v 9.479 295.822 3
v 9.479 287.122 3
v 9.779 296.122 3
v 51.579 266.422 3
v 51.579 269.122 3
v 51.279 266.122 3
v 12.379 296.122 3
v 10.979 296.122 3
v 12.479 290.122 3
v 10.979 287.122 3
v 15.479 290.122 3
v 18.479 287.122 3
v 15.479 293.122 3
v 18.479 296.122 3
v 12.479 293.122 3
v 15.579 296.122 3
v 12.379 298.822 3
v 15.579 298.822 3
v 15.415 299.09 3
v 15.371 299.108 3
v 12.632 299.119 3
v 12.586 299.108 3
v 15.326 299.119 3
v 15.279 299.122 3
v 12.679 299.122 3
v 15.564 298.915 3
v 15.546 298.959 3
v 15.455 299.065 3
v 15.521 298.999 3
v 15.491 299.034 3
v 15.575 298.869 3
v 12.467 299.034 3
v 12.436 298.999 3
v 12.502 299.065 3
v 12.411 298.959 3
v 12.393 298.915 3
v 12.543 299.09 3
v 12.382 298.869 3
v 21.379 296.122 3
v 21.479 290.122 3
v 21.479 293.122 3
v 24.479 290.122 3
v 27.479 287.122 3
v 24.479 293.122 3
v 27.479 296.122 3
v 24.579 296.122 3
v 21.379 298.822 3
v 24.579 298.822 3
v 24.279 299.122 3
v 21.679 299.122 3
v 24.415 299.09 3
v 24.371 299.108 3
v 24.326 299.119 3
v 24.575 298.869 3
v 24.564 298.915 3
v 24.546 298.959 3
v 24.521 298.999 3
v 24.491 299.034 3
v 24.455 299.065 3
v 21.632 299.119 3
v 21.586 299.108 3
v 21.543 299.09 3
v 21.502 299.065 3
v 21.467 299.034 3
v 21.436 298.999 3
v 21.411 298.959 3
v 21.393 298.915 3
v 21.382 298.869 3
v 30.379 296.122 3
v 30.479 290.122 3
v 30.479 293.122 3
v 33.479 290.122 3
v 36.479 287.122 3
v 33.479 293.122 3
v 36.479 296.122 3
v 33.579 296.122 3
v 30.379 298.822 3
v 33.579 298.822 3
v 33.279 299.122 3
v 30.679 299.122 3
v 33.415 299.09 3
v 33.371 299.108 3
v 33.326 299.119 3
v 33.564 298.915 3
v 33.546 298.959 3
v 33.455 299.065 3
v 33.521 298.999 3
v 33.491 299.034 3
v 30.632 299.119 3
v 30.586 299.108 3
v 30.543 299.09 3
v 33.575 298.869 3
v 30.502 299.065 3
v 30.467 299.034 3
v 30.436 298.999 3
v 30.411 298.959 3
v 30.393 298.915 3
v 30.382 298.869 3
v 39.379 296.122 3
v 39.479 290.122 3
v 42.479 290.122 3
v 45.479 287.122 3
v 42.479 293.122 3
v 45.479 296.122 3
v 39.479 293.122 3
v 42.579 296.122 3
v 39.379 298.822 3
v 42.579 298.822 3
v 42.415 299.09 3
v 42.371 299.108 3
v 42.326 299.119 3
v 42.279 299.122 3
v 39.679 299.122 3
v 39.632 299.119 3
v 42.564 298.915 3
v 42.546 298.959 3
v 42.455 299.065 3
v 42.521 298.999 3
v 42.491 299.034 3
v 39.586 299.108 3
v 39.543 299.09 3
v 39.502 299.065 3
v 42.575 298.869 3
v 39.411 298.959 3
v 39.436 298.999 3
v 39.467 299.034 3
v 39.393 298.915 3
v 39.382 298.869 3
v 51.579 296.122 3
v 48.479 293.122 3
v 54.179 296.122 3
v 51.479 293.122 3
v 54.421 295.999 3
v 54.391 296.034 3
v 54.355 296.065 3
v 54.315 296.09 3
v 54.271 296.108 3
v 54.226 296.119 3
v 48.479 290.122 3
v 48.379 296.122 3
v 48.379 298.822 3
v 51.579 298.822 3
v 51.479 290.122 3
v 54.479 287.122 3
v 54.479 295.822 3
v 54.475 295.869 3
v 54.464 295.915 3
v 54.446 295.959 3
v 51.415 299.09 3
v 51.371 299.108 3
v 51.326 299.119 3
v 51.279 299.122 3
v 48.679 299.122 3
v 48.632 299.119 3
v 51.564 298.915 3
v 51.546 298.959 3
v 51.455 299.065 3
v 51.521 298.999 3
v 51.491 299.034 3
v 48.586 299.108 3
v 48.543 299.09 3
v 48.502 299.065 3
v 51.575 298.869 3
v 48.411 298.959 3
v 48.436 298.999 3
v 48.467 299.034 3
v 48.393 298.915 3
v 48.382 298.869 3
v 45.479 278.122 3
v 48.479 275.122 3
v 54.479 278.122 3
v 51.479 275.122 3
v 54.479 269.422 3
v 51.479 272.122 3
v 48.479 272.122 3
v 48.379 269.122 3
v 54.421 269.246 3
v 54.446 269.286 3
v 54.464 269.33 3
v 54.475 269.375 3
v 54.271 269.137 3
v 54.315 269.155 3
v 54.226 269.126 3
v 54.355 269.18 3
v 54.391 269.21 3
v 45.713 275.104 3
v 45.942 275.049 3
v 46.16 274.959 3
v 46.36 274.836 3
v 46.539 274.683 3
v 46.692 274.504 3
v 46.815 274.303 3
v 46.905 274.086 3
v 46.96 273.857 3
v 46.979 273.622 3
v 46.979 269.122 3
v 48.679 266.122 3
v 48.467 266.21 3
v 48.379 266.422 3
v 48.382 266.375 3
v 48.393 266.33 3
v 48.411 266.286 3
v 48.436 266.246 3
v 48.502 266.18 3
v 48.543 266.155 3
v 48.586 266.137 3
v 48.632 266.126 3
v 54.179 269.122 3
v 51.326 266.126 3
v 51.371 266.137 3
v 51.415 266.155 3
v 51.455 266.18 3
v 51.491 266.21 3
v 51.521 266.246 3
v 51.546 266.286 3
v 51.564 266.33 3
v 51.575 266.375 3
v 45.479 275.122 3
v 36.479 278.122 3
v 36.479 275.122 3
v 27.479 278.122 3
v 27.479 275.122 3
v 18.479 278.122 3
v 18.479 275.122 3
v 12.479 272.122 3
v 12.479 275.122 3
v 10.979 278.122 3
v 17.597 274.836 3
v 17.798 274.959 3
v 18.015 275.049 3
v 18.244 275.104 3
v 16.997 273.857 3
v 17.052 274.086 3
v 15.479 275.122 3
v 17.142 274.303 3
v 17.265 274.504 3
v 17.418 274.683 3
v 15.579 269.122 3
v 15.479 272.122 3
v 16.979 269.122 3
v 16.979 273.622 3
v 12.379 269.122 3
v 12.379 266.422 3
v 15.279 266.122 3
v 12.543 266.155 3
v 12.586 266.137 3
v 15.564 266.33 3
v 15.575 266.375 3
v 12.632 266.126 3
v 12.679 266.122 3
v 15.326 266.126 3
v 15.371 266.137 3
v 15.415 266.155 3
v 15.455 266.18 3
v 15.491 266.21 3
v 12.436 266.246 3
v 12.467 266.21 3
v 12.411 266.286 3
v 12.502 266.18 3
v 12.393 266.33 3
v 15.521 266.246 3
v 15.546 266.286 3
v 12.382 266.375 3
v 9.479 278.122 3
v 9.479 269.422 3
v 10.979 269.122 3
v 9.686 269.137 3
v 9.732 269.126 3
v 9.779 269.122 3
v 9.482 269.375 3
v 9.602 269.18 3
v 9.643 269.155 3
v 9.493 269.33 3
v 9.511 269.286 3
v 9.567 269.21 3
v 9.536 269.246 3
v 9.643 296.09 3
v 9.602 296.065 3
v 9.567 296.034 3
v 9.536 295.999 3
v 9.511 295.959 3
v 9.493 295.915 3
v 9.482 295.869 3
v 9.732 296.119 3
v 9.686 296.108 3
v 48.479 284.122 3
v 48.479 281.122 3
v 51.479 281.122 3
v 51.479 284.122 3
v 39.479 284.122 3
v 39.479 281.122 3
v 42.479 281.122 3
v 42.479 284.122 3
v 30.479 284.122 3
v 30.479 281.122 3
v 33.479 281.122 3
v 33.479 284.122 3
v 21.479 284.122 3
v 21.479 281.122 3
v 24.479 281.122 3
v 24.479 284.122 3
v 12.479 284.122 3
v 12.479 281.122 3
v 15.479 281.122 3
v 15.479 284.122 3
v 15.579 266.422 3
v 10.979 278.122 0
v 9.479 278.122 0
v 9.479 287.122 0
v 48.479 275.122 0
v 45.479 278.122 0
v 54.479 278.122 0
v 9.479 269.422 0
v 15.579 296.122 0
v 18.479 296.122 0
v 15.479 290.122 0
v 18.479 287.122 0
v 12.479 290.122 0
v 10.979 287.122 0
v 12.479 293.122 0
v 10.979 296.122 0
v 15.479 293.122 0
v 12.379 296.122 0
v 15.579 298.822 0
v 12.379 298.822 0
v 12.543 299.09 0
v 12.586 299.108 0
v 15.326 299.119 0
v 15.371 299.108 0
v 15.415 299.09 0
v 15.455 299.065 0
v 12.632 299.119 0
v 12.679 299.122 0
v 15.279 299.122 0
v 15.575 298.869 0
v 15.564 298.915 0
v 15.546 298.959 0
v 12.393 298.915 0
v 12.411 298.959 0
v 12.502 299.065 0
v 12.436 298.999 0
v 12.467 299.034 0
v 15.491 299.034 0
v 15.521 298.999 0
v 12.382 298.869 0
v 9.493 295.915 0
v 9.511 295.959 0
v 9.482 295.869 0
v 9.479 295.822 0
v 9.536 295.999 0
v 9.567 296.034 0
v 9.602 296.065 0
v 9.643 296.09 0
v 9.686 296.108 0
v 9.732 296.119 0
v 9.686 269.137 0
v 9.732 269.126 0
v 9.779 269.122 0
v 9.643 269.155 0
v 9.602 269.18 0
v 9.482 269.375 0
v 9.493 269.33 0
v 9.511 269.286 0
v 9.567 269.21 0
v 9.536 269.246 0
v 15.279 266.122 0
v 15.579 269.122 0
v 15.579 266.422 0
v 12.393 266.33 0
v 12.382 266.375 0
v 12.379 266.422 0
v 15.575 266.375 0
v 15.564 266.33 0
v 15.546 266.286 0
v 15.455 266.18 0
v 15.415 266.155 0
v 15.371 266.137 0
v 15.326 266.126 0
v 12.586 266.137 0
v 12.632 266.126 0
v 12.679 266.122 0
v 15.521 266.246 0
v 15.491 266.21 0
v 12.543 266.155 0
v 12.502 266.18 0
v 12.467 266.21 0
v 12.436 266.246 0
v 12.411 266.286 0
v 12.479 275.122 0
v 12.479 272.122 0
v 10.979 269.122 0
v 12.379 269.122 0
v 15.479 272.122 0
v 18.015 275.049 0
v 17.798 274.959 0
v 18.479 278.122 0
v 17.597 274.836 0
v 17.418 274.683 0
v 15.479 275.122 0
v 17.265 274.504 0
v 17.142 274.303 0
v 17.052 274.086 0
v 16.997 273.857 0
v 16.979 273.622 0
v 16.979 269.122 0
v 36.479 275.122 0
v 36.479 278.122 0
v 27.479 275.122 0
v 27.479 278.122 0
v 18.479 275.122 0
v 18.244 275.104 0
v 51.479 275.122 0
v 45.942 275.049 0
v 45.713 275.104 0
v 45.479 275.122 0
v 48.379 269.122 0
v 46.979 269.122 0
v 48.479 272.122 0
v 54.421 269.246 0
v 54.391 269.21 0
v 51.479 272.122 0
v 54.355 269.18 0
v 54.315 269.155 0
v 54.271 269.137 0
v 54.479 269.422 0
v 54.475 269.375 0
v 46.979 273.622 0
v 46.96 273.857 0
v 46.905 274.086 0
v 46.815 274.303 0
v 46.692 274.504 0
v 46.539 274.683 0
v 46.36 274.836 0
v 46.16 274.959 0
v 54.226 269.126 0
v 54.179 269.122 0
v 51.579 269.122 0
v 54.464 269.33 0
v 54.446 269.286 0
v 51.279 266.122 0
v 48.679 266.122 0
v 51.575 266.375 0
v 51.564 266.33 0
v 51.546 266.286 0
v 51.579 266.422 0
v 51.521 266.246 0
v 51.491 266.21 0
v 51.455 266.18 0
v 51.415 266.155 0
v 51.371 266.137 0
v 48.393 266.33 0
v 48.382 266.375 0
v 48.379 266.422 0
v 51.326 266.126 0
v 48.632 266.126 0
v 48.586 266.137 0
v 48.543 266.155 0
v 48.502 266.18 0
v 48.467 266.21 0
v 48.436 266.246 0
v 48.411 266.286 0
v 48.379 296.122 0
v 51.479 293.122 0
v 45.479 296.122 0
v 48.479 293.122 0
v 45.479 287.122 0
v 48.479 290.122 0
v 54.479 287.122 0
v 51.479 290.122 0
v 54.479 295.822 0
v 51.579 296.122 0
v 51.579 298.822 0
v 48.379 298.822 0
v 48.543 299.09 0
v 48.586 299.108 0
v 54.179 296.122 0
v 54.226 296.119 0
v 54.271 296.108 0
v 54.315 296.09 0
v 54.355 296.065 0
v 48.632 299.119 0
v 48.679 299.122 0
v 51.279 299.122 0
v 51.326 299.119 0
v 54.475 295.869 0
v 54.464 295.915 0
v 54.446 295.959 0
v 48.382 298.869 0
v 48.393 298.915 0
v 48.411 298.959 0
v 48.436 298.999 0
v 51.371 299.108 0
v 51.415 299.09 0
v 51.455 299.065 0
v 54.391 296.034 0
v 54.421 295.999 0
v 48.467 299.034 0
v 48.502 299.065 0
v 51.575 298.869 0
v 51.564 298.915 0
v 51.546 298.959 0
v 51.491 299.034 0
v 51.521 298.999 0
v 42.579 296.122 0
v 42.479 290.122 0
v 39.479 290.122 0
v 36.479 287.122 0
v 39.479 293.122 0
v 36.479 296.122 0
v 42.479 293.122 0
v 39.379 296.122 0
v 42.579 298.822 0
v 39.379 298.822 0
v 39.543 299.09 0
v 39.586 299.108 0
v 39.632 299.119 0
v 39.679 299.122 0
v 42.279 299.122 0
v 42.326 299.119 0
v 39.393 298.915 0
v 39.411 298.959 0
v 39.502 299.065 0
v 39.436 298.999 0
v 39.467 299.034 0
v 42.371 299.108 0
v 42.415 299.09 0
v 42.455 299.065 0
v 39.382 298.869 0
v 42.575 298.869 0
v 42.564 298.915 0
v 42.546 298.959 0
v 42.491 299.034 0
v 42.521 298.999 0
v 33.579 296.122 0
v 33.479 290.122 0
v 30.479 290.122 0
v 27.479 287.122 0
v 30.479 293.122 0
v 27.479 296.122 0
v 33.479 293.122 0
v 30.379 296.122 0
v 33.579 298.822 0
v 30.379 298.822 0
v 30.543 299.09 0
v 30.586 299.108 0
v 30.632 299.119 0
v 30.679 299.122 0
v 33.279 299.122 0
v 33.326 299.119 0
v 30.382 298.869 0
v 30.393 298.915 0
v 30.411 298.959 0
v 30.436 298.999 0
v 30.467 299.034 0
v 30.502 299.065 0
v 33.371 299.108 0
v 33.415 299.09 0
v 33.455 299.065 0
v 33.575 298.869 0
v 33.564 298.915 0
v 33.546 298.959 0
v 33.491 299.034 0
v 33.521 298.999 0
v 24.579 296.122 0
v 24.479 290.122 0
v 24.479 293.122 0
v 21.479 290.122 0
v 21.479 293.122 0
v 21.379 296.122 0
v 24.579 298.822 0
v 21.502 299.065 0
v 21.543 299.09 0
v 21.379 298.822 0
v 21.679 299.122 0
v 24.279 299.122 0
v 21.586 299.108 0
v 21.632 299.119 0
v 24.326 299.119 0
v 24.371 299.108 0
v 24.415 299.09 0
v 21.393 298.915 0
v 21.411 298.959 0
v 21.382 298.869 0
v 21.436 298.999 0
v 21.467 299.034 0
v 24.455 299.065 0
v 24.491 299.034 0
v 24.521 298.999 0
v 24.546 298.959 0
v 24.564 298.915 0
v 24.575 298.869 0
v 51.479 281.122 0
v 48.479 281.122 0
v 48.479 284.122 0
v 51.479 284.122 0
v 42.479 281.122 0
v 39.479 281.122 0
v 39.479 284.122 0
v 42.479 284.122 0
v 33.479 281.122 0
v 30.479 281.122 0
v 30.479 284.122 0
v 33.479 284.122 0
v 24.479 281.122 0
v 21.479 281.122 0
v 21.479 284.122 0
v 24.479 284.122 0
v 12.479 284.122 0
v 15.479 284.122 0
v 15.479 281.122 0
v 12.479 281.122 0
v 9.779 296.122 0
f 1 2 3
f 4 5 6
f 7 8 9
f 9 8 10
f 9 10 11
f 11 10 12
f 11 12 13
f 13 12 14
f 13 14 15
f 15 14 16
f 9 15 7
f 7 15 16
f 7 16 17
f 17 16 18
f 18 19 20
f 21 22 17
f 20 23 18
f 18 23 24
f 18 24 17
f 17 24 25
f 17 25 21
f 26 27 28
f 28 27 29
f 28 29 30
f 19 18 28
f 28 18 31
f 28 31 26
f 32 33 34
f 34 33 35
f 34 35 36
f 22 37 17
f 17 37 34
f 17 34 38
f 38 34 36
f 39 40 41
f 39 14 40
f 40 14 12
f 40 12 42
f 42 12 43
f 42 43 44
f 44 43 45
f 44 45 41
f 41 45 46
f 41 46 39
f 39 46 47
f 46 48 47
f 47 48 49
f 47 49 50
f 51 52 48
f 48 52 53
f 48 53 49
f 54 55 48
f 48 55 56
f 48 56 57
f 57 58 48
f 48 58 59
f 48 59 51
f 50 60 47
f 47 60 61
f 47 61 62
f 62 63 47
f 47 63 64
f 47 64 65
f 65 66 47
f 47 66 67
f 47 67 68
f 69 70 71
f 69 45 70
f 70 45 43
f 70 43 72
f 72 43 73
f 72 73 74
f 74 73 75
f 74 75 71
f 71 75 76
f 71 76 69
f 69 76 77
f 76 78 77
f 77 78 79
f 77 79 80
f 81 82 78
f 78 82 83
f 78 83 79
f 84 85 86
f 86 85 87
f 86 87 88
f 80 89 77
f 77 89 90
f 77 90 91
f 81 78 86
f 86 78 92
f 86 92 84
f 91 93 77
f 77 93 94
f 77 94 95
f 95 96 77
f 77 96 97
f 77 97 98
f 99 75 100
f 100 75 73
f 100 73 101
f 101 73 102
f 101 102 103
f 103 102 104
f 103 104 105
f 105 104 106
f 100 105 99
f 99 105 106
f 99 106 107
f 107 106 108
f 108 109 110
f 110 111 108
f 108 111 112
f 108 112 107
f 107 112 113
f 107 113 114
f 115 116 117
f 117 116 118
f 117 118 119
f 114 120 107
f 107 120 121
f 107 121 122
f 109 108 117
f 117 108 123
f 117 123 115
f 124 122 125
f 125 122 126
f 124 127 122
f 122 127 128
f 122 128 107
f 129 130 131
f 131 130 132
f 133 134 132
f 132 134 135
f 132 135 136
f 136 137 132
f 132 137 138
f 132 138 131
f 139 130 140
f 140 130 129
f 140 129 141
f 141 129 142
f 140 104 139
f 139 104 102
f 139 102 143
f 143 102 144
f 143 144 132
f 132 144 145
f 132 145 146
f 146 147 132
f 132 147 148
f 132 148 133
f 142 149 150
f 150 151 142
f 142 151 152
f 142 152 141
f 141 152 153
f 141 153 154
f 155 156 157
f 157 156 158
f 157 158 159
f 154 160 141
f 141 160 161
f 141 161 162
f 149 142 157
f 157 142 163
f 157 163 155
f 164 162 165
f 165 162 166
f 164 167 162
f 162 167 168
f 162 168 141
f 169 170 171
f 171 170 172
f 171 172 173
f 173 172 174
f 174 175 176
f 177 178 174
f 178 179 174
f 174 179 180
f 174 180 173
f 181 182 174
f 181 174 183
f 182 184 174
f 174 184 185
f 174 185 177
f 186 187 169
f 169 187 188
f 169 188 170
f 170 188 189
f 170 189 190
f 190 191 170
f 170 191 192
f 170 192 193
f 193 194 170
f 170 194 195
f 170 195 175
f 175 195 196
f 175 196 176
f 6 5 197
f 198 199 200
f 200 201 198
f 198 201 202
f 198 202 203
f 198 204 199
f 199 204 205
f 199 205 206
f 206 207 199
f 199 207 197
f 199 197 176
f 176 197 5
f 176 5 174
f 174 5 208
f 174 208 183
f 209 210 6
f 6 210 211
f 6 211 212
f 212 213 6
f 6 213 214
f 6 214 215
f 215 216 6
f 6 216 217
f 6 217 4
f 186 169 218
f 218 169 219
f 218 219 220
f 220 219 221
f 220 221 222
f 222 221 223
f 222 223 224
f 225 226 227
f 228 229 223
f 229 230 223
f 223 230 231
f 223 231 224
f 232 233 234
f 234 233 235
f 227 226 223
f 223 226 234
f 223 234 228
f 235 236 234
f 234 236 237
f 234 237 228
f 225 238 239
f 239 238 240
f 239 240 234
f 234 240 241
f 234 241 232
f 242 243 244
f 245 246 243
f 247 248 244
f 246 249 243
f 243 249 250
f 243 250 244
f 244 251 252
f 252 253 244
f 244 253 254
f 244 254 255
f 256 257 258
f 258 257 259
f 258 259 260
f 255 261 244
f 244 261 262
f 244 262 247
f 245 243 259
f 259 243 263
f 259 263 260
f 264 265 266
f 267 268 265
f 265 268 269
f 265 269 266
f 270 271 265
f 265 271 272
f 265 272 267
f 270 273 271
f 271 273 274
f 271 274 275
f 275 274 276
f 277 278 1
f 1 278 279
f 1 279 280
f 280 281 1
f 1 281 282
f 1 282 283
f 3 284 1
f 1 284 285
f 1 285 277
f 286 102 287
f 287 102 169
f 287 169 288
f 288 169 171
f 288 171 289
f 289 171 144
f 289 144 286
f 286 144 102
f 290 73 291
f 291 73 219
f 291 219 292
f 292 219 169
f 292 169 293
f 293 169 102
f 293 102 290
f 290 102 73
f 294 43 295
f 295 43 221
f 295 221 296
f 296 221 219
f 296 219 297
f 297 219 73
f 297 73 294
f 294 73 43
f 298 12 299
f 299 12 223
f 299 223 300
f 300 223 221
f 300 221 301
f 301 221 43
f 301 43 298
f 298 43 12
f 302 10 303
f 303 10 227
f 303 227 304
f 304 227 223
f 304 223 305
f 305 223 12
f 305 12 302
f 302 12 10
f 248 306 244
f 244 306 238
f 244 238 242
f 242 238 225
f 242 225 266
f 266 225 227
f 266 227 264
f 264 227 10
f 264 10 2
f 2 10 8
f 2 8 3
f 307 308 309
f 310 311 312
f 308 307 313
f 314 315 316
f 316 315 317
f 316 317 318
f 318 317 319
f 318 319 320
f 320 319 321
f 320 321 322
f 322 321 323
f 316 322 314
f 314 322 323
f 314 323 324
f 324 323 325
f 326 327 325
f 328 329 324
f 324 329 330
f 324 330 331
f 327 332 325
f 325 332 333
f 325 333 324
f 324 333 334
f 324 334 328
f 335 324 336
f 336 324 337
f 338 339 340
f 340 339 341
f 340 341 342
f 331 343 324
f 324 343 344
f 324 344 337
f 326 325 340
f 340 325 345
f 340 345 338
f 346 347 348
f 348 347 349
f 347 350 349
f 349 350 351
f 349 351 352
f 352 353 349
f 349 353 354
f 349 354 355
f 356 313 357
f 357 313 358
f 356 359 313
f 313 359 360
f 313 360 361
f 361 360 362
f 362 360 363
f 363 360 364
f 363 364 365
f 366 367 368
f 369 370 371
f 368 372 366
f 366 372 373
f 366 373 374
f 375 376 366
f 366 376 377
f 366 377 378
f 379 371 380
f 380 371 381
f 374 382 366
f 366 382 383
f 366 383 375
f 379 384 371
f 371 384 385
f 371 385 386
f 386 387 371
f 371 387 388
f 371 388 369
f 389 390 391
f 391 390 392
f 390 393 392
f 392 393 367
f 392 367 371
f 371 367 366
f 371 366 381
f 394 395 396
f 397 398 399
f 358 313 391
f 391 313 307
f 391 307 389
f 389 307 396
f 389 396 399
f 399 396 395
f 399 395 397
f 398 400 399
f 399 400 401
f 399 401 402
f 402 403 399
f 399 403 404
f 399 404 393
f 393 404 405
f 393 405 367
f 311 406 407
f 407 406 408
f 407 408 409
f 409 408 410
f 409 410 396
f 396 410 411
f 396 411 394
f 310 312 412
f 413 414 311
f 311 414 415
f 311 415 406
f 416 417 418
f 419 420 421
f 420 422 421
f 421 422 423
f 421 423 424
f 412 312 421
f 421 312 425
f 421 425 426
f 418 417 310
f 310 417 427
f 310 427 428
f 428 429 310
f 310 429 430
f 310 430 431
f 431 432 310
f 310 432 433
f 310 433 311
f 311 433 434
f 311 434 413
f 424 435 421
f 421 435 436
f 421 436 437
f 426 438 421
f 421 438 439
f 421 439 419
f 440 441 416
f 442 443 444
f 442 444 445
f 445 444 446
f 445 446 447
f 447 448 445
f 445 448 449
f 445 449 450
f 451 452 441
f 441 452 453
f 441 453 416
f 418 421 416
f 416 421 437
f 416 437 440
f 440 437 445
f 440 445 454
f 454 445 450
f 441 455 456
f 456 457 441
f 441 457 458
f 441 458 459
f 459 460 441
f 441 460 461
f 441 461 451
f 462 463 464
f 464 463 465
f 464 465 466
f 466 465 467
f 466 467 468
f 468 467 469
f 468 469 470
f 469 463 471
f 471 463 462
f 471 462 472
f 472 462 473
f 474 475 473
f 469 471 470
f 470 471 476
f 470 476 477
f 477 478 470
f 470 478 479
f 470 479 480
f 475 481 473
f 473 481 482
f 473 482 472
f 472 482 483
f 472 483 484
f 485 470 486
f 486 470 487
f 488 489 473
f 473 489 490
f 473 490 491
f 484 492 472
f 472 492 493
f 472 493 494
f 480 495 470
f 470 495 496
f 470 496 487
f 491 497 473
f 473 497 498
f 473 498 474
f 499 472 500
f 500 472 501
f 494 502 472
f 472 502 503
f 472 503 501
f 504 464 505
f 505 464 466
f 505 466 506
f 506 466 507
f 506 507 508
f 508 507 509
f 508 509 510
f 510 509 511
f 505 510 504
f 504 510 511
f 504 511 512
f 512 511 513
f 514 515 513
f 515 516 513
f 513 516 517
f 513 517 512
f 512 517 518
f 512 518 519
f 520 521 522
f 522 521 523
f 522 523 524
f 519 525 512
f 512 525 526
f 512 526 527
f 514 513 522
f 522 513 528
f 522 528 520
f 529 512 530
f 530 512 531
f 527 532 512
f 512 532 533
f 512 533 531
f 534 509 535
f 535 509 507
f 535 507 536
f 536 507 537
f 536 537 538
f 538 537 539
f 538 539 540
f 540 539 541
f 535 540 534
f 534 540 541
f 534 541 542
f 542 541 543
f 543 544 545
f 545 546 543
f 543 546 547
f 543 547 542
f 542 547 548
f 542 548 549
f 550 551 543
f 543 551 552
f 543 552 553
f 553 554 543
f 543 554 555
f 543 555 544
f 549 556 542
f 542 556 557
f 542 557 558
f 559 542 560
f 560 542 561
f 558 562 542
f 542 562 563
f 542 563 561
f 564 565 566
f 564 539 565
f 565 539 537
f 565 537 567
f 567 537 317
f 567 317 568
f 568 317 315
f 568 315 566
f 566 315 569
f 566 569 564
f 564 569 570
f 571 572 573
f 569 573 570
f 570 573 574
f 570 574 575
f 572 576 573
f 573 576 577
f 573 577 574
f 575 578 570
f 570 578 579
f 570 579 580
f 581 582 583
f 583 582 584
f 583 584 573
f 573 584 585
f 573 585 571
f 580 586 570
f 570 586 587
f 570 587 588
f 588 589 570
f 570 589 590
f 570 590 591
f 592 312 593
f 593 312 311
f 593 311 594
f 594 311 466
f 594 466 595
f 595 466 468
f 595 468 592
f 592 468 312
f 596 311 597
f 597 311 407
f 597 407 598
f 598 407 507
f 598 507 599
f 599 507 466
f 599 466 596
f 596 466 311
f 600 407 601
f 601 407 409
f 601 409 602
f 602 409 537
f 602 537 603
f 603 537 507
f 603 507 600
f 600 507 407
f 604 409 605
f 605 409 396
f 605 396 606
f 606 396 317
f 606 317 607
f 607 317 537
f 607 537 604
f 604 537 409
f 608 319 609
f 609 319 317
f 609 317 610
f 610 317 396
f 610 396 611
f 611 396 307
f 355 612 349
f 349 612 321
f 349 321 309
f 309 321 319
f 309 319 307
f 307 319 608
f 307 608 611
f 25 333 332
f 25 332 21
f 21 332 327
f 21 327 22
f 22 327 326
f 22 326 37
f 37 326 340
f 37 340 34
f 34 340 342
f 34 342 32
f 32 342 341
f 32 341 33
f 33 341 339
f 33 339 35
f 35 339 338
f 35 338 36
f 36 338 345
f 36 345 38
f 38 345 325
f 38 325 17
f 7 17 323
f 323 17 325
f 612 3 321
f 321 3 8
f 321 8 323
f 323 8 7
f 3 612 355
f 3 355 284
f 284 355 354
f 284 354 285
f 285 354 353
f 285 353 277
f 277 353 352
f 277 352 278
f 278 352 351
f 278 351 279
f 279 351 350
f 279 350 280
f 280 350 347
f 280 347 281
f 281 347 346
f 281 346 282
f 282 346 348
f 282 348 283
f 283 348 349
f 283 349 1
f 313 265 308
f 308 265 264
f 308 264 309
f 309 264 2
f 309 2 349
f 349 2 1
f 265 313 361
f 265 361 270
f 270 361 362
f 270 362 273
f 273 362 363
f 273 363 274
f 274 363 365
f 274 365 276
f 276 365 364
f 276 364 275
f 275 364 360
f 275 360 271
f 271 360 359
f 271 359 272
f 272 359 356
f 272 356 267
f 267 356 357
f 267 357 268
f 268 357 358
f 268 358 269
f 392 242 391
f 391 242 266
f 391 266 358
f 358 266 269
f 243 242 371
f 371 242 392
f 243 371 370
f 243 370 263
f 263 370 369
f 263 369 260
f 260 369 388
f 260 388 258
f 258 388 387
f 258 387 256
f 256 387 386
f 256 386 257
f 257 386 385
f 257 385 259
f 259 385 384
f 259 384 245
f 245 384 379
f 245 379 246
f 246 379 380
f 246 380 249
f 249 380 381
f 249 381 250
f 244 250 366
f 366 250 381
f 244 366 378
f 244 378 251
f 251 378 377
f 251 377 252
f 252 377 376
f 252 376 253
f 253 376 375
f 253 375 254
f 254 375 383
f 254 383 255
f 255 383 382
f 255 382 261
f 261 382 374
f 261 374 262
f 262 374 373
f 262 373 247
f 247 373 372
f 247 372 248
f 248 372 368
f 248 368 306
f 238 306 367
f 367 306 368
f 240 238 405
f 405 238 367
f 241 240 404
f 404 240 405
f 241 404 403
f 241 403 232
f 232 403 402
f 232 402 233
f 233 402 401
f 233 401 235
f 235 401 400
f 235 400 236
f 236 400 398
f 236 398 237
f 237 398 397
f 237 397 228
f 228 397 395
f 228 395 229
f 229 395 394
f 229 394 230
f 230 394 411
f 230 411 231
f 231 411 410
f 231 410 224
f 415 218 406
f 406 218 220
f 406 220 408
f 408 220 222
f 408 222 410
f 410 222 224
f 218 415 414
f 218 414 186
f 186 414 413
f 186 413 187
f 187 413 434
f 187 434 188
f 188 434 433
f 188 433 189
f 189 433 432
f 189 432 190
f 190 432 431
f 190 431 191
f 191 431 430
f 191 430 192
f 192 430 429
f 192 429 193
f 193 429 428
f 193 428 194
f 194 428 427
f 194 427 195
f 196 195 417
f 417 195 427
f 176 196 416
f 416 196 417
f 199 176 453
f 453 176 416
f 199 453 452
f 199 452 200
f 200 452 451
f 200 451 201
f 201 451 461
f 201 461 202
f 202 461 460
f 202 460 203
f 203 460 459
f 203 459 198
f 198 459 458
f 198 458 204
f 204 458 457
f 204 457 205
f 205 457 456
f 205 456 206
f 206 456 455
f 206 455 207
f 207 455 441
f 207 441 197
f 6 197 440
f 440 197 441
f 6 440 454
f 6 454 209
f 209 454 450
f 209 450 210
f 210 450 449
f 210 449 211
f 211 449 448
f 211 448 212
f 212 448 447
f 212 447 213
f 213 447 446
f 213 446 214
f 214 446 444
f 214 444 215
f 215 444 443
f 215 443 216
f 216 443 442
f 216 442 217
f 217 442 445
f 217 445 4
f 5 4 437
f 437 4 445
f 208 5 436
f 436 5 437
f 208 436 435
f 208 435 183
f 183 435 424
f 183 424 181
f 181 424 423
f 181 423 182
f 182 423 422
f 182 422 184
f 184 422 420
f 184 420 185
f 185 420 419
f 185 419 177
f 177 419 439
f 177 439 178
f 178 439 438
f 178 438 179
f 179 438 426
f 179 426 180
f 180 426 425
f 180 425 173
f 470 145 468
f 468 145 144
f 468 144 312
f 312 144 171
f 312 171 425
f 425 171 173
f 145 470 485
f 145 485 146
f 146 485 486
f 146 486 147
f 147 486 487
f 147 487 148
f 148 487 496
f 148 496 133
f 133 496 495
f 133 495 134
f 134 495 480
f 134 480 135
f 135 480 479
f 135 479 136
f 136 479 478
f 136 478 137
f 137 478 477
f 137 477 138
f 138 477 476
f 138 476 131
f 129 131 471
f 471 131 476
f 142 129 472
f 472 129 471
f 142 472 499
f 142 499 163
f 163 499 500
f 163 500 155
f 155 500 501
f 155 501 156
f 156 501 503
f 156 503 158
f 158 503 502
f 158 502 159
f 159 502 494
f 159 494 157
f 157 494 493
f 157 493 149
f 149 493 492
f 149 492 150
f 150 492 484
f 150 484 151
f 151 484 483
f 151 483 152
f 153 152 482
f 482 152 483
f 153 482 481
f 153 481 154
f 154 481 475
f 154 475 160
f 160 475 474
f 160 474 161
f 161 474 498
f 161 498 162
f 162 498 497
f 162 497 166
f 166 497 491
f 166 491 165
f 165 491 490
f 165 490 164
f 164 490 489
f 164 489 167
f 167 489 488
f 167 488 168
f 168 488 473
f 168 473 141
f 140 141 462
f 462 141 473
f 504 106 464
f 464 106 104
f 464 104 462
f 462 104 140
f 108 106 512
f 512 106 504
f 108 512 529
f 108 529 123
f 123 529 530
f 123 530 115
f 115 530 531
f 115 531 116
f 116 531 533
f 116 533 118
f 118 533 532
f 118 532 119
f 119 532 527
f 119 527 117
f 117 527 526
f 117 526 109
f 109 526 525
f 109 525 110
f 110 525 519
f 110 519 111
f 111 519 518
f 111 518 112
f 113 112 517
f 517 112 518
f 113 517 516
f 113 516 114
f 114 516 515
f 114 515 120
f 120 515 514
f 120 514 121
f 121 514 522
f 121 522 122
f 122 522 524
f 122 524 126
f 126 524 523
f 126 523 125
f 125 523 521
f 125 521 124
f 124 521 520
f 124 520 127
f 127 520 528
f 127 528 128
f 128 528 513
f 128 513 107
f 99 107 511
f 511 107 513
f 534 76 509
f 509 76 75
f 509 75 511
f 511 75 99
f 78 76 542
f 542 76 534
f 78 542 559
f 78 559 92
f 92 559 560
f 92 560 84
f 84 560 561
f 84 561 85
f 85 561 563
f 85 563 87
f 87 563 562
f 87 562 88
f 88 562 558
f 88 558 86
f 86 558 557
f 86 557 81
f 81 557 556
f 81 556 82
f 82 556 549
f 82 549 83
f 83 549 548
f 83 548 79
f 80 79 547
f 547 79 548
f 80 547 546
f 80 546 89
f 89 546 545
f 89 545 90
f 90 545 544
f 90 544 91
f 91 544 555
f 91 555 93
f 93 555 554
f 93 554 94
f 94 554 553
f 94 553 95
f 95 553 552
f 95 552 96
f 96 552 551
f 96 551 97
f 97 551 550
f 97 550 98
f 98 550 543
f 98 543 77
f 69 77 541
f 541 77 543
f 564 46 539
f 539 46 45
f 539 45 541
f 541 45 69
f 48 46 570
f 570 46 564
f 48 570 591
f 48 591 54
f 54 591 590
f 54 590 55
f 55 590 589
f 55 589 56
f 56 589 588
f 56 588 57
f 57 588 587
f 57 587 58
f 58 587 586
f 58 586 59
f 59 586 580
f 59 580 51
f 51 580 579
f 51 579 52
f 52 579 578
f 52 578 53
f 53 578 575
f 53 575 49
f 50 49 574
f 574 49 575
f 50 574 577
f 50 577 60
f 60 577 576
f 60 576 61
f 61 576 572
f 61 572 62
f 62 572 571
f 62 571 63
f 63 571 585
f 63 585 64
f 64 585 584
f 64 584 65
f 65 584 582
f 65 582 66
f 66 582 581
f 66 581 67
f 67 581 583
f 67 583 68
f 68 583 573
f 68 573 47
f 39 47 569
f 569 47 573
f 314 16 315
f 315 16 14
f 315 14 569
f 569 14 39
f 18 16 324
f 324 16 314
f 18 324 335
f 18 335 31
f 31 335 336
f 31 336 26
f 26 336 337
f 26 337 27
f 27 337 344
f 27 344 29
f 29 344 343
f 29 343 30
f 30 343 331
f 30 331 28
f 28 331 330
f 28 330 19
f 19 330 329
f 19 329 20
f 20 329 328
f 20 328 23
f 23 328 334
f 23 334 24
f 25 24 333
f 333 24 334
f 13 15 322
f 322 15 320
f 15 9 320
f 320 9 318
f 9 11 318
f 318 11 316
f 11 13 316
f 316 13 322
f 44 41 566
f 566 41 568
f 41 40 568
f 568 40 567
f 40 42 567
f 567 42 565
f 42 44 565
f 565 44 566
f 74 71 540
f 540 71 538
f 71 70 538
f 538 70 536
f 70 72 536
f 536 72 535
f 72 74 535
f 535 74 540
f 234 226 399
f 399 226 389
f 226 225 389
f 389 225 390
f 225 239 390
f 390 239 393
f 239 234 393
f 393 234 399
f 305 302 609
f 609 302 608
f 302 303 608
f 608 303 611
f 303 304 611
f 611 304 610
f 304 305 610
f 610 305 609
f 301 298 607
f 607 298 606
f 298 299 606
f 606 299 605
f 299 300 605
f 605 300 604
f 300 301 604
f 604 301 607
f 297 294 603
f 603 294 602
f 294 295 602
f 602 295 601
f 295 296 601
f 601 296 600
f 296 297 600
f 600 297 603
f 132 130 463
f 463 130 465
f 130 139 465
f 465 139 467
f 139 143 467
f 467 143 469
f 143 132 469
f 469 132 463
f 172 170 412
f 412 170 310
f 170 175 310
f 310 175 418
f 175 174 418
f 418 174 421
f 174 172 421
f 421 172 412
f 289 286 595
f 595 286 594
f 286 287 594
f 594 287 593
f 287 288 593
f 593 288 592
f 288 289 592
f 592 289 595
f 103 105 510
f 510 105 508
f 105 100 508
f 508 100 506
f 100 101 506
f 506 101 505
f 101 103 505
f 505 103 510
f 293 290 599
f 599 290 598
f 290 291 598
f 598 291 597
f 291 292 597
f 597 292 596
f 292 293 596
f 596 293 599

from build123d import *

# Parameters (mm, degrees)
MODEL_W                 = 3
MODEL_H                 = 3
SALIENTE_EXTRUIR1_DEPTH = 3


with BuildPart() as part:
    # Model → Saliente-Extruir1 (new body)
    with BuildSketch(Plane.XY):
        with BuildLine():
            Line((9.478716471, 295.822349433), (9.478716471, 269.422349433))
            ThreePointArc((9.478716471, 269.422349433), (9.566584436, 269.210217399), (9.778716471, 269.122349433))
            Line((9.778716471, 269.122349433), (12.378716471, 269.122349433))
            Line((12.378716471, 269.122349433), (12.378716471, 266.422349433))
            ThreePointArc((12.378716471, 266.422349433), (12.466584436, 266.210217399), (12.678716471, 266.122349433))
            Line((12.678716471, 266.122349433), (15.278716471, 266.122349433))
            ThreePointArc((15.278716471, 266.122349433), (15.490848505, 266.210217399), (15.578716471, 266.422349433))
            Line((15.578716471, 266.422349433), (15.578716471, 269.122349433))
            Line((15.578716471, 269.122349433), (16.978716471, 269.122349433))
            Line((16.978716471, 269.122349433), (16.978716471, 273.622349433))
            ThreePointArc((16.978716471, 273.622349433), (17.418056299, 274.683009605), (18.478716471, 275.122349433))
            Line((18.478716471, 275.122349433), (45.478716471, 275.122349433))
            ThreePointArc((45.478716471, 275.122349433), (46.539376642, 274.683009605), (46.978716471, 273.622349433))
            Line((46.978716471, 273.622349433), (46.978716471, 269.122349433))
            Line((46.978716471, 269.122349433), (48.378716471, 269.122349433))
            Line((48.378716471, 269.122349433), (48.378716471, 266.422349433))
            ThreePointArc((48.378716471, 266.422349433), (48.466584436, 266.210217399), (48.678716471, 266.122349433))
            Line((48.678716471, 266.122349433), (51.278716471, 266.122349433))
            ThreePointArc((51.278716471, 266.122349433), (51.490848505, 266.210217399), (51.578716471, 266.422349433))
            Line((51.578716471, 266.422349433), (51.578716471, 269.122349433))
            Line((51.578716471, 269.122349433), (54.178716471, 269.122349433))
            ThreePointArc((54.178716471, 269.122349433), (54.390848505, 269.210217399), (54.478716471, 269.422349433))
            Line((54.478716471, 269.422349433), (54.478716471, 295.822349433))
            ThreePointArc((54.478716471, 295.822349433), (54.390848505, 296.034481468), (54.178716471, 296.122349433))
            Line((54.178716471, 296.122349433), (51.578716471, 296.122349433))
            Line((51.578716471, 296.122349433), (51.578716471, 298.822349433))
            ThreePointArc((51.578716471, 298.822349433), (51.490848505, 299.034481468), (51.278716471, 299.122349433))
            Line((51.278716471, 299.122349433), (48.678716471, 299.122349433))
            ThreePointArc((48.678716471, 299.122349433), (48.466584436, 299.034481468), (48.378716471, 298.822349433))
            Line((48.378716471, 298.822349433), (48.378716471, 296.122349433))
            Line((48.378716471, 296.122349433), (42.578716471, 296.122349433))
            Line((42.578716471, 296.122349433), (42.578716471, 298.822349433))
            ThreePointArc((42.578716471, 298.822349433), (42.490848505, 299.034481468), (42.278716471, 299.122349433))
            Line((42.278716471, 299.122349433), (39.678716471, 299.122349433))
            ThreePointArc((39.678716471, 299.122349433), (39.466584436, 299.034481468), (39.378716471, 298.822349433))
            Line((39.378716471, 298.822349433), (39.378716471, 296.122349433))
            Line((39.378716471, 296.122349433), (33.578716471, 296.122349433))
            Line((33.578716471, 296.122349433), (33.578716471, 298.822349433))
            ThreePointArc((33.578716471, 298.822349433), (33.490848505, 299.034481468), (33.278716471, 299.122349433))
            Line((33.278716471, 299.122349433), (30.678716471, 299.122349433))
            ThreePointArc((30.678716471, 299.122349433), (30.466584436, 299.034481468), (30.378716471, 298.822349433))
            Line((30.378716471, 298.822349433), (30.378716471, 296.122349433))
            Line((30.378716471, 296.122349433), (24.578716471, 296.122349433))
            Line((24.578716471, 296.122349433), (24.578716471, 298.822349433))
            ThreePointArc((24.578716471, 298.822349433), (24.490848505, 299.034481468), (24.278716471, 299.122349433))
            Line((24.278716471, 299.122349433), (21.678716471, 299.122349433))
            ThreePointArc((21.678716471, 299.122349433), (21.466584436, 299.034481468), (21.378716471, 298.822349433))
            Line((21.378716471, 298.822349433), (21.378716471, 296.122349433))
            Line((21.378716471, 296.122349433), (15.578716471, 296.122349433))
            Line((15.578716471, 296.122349433), (15.578716471, 298.822349433))
            ThreePointArc((15.578716471, 298.822349433), (15.490848505, 299.034481468), (15.278716471, 299.122349433))
            Line((15.278716471, 299.122349433), (12.678716471, 299.122349433))
            ThreePointArc((12.678716471, 299.122349433), (12.466584436, 299.034481468), (12.378716471, 298.822349433))
            Line((12.378716471, 298.822349433), (12.378716471, 296.122349433))
            Line((12.378716471, 296.122349433), (9.778716471, 296.122349433))
            ThreePointArc((9.778716471, 296.122349433), (9.566584436, 296.034481468), (9.478716471, 295.822349433))
        make_face()
        with Locations((13.978716471, 291.622349433)):
            Rectangle(MODEL_W, MODEL_H, mode=Mode.SUBTRACT)
        with Locations((22.978716471, 291.622349433)):
            Rectangle(MODEL_W, MODEL_H, mode=Mode.SUBTRACT)
        with Locations((31.978716471, 291.622349433)):
            Rectangle(MODEL_W, MODEL_H, mode=Mode.SUBTRACT)
        with Locations((13.978716471, 273.622349433)):
            Rectangle(MODEL_W, MODEL_H, mode=Mode.SUBTRACT)
        with Locations((13.978716471, 282.622349433)):
            Rectangle(MODEL_W, MODEL_H, mode=Mode.SUBTRACT)
        with Locations((22.978716471, 282.622349433)):
            Rectangle(MODEL_W, MODEL_H, mode=Mode.SUBTRACT)
        with Locations((31.978716471, 282.622349433)):
            Rectangle(MODEL_W, MODEL_H, mode=Mode.SUBTRACT)
        with Locations((49.978716471, 291.622349433)):
            Rectangle(MODEL_W, MODEL_H, mode=Mode.SUBTRACT)
        with Locations((49.978716471, 273.622349433)):
            Rectangle(MODEL_W, MODEL_H, mode=Mode.SUBTRACT)
        with Locations((49.978716471, 282.622349433)):
            Rectangle(MODEL_W, MODEL_H, mode=Mode.SUBTRACT)
        with Locations((40.978716471, 291.622349433)):
            Rectangle(MODEL_W, MODEL_H, mode=Mode.SUBTRACT)
        with Locations((40.978716471, 282.622349433)):
            Rectangle(MODEL_W, MODEL_H, mode=Mode.SUBTRACT)
    extrude(amount=SALIENTE_EXTRUIR1_DEPTH)


solid = part.part
